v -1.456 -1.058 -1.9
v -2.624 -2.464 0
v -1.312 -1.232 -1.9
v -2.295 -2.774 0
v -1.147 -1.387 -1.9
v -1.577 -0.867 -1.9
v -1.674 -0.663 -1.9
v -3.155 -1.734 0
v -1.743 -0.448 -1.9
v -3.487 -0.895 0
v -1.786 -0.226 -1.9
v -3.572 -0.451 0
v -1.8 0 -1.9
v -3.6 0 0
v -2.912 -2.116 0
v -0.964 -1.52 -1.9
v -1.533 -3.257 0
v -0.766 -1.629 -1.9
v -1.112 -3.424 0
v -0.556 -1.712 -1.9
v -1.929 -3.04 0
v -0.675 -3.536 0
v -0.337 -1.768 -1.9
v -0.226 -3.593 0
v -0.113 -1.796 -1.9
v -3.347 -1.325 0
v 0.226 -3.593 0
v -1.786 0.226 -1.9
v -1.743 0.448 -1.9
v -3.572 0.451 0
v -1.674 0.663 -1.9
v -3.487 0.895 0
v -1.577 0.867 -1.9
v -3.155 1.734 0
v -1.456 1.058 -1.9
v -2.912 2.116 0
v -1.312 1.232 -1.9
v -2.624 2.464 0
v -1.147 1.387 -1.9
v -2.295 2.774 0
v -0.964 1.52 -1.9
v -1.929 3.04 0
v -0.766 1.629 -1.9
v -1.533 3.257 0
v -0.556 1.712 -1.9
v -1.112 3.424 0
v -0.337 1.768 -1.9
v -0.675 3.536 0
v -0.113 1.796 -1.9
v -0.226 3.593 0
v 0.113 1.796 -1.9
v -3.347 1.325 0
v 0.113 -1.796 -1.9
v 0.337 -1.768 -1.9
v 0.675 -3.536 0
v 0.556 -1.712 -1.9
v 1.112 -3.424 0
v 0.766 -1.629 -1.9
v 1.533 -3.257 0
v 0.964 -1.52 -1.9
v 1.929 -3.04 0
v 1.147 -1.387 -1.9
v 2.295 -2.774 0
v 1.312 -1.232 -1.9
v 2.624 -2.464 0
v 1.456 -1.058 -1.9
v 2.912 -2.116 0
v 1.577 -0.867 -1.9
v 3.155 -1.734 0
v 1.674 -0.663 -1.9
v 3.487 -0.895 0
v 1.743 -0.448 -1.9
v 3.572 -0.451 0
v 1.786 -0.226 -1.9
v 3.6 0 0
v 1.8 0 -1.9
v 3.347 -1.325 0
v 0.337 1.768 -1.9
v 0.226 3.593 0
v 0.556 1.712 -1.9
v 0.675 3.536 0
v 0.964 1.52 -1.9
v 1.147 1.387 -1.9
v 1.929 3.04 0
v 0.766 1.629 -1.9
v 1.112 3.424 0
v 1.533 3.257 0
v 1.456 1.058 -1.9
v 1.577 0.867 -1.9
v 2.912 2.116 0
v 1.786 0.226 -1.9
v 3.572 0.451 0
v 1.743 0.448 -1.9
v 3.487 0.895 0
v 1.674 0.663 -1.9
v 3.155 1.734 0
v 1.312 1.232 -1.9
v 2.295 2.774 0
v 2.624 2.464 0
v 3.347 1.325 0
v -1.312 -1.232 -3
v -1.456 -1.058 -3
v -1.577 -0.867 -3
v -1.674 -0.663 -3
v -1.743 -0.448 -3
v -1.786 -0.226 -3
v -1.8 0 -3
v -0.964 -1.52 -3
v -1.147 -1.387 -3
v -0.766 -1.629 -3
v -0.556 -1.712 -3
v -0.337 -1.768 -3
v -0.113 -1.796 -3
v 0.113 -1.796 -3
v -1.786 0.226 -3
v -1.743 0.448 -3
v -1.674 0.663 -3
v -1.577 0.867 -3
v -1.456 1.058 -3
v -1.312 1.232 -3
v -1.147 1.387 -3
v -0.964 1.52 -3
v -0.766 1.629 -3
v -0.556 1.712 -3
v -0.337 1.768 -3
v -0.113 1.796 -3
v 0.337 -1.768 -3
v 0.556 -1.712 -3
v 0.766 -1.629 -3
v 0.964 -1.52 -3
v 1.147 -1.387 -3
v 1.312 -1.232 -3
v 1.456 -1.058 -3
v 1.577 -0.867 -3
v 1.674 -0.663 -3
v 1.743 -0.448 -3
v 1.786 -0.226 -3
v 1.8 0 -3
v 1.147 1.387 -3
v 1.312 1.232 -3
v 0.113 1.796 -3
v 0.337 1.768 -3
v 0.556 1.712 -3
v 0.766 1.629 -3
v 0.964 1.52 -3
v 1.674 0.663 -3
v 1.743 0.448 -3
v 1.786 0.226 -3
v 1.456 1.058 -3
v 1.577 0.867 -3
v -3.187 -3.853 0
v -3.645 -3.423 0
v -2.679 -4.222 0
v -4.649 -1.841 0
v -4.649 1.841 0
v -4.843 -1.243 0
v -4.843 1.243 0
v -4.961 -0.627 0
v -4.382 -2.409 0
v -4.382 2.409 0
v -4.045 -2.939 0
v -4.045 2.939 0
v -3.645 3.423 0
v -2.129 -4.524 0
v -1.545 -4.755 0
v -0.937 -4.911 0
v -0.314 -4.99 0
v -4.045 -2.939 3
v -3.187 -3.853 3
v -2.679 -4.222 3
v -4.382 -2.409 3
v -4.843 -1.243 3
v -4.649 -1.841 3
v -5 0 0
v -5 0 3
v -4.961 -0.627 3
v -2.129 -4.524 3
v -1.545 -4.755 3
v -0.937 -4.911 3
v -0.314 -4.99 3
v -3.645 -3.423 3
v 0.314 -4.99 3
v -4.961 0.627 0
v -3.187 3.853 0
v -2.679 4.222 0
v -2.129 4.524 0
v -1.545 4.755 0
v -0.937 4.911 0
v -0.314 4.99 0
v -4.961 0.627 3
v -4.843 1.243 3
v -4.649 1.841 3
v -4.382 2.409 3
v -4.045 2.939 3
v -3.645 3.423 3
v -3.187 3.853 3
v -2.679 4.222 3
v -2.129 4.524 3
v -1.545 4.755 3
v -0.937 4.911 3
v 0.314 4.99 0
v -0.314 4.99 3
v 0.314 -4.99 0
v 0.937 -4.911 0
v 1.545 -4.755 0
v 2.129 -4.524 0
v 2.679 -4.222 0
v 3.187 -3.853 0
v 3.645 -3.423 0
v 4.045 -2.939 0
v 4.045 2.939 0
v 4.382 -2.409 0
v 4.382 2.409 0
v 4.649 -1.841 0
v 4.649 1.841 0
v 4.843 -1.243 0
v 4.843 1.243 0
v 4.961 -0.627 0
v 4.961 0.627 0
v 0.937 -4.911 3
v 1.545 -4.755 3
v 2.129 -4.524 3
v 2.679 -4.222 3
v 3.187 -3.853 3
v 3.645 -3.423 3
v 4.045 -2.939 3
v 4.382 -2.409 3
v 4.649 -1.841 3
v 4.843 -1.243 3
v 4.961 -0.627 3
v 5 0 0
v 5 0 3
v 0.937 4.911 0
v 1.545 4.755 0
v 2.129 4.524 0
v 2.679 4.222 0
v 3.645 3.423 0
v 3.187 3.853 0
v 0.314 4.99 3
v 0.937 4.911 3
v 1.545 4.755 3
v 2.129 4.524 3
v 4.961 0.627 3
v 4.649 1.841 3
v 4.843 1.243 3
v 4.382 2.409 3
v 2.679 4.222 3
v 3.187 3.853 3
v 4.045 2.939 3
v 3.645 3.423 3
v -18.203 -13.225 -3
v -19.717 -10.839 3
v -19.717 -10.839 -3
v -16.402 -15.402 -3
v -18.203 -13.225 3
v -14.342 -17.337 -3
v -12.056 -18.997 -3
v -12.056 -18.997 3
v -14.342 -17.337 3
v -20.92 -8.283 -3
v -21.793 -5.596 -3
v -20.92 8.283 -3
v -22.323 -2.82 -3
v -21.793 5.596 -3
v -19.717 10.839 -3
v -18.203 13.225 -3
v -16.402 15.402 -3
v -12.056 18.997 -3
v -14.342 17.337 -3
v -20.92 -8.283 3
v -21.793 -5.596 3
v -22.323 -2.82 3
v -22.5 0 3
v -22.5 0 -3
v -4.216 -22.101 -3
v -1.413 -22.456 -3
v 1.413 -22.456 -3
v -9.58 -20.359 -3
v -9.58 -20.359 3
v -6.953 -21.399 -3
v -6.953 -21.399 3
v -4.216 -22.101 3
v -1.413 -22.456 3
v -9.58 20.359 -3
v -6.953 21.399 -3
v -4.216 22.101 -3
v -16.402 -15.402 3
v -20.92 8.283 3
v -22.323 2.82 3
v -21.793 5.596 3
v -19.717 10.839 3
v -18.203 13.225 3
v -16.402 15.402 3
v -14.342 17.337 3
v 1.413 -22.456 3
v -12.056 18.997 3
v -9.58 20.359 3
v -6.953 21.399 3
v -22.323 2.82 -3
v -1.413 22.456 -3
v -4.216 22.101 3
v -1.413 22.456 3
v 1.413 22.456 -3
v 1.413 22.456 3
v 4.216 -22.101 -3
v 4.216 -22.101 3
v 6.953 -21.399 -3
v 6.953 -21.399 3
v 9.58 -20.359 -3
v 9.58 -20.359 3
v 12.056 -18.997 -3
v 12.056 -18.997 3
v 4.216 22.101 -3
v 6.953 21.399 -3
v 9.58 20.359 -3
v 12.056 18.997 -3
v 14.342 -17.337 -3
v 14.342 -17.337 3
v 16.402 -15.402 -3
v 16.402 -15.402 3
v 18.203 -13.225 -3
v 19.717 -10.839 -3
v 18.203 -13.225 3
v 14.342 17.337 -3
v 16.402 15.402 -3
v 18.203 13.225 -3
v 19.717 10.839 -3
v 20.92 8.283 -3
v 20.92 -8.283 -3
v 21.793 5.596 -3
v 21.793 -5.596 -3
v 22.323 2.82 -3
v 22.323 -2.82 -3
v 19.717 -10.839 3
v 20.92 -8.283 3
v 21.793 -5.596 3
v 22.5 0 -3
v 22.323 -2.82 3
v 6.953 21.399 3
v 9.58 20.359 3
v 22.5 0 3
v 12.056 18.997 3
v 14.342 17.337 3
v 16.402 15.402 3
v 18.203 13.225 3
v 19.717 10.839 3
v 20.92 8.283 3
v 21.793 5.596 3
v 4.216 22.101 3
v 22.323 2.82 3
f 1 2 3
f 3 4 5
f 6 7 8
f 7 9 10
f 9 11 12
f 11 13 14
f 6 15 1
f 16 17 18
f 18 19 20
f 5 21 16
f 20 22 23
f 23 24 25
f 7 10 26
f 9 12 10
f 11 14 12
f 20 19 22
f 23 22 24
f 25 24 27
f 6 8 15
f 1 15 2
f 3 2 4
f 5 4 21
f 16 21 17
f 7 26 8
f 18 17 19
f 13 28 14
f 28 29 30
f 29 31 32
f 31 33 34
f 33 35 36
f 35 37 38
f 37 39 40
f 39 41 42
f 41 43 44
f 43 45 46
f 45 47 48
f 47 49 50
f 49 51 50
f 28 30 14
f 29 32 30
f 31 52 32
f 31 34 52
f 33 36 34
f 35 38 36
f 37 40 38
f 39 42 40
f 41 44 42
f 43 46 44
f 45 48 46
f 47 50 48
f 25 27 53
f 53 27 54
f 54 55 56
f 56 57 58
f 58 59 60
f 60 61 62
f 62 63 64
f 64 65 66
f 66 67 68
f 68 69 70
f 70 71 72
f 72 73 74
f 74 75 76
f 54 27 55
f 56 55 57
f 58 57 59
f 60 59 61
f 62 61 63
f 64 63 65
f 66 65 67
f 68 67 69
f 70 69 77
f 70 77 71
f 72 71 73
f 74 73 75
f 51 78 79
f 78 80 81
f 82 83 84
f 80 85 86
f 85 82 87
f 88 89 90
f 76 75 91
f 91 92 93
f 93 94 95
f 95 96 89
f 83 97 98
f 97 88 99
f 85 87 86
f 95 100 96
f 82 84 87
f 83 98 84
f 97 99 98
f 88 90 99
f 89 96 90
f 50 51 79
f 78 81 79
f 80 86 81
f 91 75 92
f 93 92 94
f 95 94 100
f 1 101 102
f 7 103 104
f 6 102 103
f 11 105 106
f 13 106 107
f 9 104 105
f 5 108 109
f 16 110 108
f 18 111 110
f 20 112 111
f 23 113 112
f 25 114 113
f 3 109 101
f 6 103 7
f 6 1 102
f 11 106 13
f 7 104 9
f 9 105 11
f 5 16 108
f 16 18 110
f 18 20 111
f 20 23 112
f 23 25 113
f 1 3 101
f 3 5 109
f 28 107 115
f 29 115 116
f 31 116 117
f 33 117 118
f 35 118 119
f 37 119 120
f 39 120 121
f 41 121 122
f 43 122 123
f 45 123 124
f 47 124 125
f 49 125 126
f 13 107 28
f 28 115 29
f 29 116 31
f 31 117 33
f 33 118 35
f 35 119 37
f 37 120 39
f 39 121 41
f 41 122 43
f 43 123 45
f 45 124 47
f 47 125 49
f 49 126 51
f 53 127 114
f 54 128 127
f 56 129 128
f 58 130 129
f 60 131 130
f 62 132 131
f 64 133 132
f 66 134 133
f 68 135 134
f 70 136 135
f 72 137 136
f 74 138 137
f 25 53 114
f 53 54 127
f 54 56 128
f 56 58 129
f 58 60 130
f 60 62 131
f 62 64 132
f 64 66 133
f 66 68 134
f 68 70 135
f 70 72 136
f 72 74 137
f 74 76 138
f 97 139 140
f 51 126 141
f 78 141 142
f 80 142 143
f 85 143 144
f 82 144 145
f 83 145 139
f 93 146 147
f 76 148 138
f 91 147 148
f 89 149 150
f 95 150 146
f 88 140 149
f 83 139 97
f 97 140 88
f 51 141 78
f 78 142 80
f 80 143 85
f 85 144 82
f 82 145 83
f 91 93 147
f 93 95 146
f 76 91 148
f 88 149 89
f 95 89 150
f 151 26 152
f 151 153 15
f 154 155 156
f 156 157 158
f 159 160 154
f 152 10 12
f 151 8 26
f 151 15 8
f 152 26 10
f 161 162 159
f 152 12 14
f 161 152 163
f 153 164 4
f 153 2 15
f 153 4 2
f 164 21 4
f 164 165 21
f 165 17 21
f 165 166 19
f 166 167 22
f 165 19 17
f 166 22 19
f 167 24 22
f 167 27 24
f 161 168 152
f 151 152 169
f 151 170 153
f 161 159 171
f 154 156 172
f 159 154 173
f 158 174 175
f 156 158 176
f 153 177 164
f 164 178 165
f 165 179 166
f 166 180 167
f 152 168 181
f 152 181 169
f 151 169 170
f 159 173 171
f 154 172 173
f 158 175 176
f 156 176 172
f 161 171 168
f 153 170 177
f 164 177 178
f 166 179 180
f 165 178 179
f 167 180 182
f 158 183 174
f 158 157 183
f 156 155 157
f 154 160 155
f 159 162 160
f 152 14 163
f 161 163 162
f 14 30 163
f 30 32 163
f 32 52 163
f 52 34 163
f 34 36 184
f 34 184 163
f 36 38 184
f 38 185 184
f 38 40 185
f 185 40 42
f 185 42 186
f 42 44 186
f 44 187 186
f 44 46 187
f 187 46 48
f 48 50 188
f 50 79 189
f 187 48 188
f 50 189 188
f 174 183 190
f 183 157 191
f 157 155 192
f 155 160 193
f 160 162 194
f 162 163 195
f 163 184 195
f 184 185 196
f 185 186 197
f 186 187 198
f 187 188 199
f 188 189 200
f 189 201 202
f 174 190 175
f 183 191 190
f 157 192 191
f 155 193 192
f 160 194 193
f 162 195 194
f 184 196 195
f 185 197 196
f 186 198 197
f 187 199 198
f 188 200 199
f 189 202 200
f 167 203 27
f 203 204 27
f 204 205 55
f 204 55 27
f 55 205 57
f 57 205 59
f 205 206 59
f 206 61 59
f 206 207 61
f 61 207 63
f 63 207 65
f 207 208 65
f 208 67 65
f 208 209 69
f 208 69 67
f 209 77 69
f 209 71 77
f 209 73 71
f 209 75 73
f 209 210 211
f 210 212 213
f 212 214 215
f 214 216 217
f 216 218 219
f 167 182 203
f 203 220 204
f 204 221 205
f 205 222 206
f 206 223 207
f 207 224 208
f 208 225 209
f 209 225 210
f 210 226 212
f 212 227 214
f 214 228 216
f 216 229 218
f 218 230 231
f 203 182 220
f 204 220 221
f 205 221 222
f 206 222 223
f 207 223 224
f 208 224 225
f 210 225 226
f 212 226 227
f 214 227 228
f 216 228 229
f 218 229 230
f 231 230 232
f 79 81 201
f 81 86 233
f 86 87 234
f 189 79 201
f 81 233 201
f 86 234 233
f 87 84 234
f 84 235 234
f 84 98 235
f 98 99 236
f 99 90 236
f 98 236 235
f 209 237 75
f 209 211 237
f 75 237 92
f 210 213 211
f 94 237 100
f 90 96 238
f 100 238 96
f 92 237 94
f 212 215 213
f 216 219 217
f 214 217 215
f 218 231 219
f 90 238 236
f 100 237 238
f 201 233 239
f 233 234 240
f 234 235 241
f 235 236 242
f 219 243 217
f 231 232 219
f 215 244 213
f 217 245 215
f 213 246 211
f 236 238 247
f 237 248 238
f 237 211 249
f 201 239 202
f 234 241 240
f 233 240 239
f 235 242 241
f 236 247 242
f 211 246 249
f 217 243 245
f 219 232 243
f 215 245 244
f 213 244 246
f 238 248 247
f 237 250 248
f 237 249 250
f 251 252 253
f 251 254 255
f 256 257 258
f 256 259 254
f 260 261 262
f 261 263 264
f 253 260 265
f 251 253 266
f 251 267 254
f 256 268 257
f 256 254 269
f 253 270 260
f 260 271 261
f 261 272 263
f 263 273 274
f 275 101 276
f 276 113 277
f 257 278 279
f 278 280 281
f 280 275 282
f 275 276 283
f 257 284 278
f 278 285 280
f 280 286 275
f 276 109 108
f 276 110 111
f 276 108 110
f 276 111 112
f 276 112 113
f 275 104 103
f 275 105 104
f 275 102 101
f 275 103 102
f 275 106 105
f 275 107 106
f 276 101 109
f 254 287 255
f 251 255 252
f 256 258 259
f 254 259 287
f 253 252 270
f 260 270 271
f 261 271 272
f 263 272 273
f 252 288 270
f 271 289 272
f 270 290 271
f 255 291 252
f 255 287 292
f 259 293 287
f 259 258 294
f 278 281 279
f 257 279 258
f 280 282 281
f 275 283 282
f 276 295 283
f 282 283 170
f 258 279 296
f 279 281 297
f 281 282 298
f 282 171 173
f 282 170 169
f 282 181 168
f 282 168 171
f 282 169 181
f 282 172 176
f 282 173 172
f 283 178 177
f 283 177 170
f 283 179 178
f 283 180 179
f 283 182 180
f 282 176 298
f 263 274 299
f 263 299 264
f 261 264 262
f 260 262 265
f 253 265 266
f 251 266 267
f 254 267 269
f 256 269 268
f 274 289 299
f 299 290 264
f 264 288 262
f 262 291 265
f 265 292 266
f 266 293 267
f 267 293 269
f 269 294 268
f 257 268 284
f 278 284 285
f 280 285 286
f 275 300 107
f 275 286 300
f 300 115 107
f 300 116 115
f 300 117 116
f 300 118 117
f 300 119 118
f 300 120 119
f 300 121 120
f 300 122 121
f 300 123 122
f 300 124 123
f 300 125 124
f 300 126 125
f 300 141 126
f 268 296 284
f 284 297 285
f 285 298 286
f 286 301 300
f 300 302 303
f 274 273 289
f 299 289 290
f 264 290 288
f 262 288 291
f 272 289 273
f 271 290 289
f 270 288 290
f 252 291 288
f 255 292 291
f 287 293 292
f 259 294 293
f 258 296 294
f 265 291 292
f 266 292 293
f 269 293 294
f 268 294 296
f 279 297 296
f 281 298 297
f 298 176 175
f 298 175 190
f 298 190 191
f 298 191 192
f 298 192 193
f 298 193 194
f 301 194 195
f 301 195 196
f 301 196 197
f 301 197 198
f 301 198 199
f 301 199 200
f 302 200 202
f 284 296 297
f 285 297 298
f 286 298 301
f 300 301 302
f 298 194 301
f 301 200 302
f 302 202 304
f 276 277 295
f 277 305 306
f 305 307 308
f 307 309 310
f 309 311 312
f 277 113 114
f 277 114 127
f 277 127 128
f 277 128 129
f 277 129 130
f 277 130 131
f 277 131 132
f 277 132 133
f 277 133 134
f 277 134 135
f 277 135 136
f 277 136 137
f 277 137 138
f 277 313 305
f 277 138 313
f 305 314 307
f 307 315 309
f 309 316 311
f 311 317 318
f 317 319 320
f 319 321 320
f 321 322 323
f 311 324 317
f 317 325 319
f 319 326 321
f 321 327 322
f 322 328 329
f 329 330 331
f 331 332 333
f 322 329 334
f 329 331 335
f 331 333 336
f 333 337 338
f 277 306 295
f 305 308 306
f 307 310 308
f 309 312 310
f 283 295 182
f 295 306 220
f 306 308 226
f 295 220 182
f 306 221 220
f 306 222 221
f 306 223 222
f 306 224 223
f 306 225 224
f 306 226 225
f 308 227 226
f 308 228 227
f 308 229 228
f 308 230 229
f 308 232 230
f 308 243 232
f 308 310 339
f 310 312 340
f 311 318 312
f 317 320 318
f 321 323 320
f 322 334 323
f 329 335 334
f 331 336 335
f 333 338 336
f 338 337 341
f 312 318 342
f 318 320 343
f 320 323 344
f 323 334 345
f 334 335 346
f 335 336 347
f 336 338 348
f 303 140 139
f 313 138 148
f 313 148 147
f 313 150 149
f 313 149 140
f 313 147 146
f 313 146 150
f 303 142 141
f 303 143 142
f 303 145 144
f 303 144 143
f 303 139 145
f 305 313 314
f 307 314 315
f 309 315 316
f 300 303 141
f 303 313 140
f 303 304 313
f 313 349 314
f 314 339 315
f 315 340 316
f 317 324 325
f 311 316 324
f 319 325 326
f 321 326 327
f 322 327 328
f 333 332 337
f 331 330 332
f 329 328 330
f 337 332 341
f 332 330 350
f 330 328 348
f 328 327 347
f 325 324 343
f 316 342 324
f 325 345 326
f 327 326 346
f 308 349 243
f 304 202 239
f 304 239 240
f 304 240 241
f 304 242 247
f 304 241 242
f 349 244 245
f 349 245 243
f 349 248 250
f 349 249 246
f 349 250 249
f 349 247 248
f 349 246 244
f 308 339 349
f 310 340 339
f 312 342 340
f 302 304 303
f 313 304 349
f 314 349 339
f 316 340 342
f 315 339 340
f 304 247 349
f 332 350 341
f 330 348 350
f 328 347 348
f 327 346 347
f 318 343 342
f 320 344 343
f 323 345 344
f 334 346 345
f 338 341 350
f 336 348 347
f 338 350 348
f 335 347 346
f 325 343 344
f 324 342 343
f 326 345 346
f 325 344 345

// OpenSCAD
$fn = 50;

difference() {
	union() {
		translate(v = [0, 0, -3.0]) {
			cylinder(h = 6, r = 22.5);
		}
	}
	union() {
		translate(v = [0, 0, 0]) {
			rotate(a = [0, 0, 0]) {
				difference() {
					union() {
						translate(v = [0, 0, -6.0]) {
							cylinder(h = 6, r = 1.5);
						}
						translate(v = [0, 0, -1.9]) {
							cylinder(h = 1.9, r1 = 1.8, r2 = 3.6);
						}
						translate(v = [0, 0, -6.0]) {
							cylinder(h = 6, r = 1.8);
						}
						translate(v = [0, 0, -6.0]) {
							cylinder(h = 6, r = 1.5);
						}
					}
					union();
				}
			}
		}
		#cylinder(h = 3, r = 5.0);
	}
}
